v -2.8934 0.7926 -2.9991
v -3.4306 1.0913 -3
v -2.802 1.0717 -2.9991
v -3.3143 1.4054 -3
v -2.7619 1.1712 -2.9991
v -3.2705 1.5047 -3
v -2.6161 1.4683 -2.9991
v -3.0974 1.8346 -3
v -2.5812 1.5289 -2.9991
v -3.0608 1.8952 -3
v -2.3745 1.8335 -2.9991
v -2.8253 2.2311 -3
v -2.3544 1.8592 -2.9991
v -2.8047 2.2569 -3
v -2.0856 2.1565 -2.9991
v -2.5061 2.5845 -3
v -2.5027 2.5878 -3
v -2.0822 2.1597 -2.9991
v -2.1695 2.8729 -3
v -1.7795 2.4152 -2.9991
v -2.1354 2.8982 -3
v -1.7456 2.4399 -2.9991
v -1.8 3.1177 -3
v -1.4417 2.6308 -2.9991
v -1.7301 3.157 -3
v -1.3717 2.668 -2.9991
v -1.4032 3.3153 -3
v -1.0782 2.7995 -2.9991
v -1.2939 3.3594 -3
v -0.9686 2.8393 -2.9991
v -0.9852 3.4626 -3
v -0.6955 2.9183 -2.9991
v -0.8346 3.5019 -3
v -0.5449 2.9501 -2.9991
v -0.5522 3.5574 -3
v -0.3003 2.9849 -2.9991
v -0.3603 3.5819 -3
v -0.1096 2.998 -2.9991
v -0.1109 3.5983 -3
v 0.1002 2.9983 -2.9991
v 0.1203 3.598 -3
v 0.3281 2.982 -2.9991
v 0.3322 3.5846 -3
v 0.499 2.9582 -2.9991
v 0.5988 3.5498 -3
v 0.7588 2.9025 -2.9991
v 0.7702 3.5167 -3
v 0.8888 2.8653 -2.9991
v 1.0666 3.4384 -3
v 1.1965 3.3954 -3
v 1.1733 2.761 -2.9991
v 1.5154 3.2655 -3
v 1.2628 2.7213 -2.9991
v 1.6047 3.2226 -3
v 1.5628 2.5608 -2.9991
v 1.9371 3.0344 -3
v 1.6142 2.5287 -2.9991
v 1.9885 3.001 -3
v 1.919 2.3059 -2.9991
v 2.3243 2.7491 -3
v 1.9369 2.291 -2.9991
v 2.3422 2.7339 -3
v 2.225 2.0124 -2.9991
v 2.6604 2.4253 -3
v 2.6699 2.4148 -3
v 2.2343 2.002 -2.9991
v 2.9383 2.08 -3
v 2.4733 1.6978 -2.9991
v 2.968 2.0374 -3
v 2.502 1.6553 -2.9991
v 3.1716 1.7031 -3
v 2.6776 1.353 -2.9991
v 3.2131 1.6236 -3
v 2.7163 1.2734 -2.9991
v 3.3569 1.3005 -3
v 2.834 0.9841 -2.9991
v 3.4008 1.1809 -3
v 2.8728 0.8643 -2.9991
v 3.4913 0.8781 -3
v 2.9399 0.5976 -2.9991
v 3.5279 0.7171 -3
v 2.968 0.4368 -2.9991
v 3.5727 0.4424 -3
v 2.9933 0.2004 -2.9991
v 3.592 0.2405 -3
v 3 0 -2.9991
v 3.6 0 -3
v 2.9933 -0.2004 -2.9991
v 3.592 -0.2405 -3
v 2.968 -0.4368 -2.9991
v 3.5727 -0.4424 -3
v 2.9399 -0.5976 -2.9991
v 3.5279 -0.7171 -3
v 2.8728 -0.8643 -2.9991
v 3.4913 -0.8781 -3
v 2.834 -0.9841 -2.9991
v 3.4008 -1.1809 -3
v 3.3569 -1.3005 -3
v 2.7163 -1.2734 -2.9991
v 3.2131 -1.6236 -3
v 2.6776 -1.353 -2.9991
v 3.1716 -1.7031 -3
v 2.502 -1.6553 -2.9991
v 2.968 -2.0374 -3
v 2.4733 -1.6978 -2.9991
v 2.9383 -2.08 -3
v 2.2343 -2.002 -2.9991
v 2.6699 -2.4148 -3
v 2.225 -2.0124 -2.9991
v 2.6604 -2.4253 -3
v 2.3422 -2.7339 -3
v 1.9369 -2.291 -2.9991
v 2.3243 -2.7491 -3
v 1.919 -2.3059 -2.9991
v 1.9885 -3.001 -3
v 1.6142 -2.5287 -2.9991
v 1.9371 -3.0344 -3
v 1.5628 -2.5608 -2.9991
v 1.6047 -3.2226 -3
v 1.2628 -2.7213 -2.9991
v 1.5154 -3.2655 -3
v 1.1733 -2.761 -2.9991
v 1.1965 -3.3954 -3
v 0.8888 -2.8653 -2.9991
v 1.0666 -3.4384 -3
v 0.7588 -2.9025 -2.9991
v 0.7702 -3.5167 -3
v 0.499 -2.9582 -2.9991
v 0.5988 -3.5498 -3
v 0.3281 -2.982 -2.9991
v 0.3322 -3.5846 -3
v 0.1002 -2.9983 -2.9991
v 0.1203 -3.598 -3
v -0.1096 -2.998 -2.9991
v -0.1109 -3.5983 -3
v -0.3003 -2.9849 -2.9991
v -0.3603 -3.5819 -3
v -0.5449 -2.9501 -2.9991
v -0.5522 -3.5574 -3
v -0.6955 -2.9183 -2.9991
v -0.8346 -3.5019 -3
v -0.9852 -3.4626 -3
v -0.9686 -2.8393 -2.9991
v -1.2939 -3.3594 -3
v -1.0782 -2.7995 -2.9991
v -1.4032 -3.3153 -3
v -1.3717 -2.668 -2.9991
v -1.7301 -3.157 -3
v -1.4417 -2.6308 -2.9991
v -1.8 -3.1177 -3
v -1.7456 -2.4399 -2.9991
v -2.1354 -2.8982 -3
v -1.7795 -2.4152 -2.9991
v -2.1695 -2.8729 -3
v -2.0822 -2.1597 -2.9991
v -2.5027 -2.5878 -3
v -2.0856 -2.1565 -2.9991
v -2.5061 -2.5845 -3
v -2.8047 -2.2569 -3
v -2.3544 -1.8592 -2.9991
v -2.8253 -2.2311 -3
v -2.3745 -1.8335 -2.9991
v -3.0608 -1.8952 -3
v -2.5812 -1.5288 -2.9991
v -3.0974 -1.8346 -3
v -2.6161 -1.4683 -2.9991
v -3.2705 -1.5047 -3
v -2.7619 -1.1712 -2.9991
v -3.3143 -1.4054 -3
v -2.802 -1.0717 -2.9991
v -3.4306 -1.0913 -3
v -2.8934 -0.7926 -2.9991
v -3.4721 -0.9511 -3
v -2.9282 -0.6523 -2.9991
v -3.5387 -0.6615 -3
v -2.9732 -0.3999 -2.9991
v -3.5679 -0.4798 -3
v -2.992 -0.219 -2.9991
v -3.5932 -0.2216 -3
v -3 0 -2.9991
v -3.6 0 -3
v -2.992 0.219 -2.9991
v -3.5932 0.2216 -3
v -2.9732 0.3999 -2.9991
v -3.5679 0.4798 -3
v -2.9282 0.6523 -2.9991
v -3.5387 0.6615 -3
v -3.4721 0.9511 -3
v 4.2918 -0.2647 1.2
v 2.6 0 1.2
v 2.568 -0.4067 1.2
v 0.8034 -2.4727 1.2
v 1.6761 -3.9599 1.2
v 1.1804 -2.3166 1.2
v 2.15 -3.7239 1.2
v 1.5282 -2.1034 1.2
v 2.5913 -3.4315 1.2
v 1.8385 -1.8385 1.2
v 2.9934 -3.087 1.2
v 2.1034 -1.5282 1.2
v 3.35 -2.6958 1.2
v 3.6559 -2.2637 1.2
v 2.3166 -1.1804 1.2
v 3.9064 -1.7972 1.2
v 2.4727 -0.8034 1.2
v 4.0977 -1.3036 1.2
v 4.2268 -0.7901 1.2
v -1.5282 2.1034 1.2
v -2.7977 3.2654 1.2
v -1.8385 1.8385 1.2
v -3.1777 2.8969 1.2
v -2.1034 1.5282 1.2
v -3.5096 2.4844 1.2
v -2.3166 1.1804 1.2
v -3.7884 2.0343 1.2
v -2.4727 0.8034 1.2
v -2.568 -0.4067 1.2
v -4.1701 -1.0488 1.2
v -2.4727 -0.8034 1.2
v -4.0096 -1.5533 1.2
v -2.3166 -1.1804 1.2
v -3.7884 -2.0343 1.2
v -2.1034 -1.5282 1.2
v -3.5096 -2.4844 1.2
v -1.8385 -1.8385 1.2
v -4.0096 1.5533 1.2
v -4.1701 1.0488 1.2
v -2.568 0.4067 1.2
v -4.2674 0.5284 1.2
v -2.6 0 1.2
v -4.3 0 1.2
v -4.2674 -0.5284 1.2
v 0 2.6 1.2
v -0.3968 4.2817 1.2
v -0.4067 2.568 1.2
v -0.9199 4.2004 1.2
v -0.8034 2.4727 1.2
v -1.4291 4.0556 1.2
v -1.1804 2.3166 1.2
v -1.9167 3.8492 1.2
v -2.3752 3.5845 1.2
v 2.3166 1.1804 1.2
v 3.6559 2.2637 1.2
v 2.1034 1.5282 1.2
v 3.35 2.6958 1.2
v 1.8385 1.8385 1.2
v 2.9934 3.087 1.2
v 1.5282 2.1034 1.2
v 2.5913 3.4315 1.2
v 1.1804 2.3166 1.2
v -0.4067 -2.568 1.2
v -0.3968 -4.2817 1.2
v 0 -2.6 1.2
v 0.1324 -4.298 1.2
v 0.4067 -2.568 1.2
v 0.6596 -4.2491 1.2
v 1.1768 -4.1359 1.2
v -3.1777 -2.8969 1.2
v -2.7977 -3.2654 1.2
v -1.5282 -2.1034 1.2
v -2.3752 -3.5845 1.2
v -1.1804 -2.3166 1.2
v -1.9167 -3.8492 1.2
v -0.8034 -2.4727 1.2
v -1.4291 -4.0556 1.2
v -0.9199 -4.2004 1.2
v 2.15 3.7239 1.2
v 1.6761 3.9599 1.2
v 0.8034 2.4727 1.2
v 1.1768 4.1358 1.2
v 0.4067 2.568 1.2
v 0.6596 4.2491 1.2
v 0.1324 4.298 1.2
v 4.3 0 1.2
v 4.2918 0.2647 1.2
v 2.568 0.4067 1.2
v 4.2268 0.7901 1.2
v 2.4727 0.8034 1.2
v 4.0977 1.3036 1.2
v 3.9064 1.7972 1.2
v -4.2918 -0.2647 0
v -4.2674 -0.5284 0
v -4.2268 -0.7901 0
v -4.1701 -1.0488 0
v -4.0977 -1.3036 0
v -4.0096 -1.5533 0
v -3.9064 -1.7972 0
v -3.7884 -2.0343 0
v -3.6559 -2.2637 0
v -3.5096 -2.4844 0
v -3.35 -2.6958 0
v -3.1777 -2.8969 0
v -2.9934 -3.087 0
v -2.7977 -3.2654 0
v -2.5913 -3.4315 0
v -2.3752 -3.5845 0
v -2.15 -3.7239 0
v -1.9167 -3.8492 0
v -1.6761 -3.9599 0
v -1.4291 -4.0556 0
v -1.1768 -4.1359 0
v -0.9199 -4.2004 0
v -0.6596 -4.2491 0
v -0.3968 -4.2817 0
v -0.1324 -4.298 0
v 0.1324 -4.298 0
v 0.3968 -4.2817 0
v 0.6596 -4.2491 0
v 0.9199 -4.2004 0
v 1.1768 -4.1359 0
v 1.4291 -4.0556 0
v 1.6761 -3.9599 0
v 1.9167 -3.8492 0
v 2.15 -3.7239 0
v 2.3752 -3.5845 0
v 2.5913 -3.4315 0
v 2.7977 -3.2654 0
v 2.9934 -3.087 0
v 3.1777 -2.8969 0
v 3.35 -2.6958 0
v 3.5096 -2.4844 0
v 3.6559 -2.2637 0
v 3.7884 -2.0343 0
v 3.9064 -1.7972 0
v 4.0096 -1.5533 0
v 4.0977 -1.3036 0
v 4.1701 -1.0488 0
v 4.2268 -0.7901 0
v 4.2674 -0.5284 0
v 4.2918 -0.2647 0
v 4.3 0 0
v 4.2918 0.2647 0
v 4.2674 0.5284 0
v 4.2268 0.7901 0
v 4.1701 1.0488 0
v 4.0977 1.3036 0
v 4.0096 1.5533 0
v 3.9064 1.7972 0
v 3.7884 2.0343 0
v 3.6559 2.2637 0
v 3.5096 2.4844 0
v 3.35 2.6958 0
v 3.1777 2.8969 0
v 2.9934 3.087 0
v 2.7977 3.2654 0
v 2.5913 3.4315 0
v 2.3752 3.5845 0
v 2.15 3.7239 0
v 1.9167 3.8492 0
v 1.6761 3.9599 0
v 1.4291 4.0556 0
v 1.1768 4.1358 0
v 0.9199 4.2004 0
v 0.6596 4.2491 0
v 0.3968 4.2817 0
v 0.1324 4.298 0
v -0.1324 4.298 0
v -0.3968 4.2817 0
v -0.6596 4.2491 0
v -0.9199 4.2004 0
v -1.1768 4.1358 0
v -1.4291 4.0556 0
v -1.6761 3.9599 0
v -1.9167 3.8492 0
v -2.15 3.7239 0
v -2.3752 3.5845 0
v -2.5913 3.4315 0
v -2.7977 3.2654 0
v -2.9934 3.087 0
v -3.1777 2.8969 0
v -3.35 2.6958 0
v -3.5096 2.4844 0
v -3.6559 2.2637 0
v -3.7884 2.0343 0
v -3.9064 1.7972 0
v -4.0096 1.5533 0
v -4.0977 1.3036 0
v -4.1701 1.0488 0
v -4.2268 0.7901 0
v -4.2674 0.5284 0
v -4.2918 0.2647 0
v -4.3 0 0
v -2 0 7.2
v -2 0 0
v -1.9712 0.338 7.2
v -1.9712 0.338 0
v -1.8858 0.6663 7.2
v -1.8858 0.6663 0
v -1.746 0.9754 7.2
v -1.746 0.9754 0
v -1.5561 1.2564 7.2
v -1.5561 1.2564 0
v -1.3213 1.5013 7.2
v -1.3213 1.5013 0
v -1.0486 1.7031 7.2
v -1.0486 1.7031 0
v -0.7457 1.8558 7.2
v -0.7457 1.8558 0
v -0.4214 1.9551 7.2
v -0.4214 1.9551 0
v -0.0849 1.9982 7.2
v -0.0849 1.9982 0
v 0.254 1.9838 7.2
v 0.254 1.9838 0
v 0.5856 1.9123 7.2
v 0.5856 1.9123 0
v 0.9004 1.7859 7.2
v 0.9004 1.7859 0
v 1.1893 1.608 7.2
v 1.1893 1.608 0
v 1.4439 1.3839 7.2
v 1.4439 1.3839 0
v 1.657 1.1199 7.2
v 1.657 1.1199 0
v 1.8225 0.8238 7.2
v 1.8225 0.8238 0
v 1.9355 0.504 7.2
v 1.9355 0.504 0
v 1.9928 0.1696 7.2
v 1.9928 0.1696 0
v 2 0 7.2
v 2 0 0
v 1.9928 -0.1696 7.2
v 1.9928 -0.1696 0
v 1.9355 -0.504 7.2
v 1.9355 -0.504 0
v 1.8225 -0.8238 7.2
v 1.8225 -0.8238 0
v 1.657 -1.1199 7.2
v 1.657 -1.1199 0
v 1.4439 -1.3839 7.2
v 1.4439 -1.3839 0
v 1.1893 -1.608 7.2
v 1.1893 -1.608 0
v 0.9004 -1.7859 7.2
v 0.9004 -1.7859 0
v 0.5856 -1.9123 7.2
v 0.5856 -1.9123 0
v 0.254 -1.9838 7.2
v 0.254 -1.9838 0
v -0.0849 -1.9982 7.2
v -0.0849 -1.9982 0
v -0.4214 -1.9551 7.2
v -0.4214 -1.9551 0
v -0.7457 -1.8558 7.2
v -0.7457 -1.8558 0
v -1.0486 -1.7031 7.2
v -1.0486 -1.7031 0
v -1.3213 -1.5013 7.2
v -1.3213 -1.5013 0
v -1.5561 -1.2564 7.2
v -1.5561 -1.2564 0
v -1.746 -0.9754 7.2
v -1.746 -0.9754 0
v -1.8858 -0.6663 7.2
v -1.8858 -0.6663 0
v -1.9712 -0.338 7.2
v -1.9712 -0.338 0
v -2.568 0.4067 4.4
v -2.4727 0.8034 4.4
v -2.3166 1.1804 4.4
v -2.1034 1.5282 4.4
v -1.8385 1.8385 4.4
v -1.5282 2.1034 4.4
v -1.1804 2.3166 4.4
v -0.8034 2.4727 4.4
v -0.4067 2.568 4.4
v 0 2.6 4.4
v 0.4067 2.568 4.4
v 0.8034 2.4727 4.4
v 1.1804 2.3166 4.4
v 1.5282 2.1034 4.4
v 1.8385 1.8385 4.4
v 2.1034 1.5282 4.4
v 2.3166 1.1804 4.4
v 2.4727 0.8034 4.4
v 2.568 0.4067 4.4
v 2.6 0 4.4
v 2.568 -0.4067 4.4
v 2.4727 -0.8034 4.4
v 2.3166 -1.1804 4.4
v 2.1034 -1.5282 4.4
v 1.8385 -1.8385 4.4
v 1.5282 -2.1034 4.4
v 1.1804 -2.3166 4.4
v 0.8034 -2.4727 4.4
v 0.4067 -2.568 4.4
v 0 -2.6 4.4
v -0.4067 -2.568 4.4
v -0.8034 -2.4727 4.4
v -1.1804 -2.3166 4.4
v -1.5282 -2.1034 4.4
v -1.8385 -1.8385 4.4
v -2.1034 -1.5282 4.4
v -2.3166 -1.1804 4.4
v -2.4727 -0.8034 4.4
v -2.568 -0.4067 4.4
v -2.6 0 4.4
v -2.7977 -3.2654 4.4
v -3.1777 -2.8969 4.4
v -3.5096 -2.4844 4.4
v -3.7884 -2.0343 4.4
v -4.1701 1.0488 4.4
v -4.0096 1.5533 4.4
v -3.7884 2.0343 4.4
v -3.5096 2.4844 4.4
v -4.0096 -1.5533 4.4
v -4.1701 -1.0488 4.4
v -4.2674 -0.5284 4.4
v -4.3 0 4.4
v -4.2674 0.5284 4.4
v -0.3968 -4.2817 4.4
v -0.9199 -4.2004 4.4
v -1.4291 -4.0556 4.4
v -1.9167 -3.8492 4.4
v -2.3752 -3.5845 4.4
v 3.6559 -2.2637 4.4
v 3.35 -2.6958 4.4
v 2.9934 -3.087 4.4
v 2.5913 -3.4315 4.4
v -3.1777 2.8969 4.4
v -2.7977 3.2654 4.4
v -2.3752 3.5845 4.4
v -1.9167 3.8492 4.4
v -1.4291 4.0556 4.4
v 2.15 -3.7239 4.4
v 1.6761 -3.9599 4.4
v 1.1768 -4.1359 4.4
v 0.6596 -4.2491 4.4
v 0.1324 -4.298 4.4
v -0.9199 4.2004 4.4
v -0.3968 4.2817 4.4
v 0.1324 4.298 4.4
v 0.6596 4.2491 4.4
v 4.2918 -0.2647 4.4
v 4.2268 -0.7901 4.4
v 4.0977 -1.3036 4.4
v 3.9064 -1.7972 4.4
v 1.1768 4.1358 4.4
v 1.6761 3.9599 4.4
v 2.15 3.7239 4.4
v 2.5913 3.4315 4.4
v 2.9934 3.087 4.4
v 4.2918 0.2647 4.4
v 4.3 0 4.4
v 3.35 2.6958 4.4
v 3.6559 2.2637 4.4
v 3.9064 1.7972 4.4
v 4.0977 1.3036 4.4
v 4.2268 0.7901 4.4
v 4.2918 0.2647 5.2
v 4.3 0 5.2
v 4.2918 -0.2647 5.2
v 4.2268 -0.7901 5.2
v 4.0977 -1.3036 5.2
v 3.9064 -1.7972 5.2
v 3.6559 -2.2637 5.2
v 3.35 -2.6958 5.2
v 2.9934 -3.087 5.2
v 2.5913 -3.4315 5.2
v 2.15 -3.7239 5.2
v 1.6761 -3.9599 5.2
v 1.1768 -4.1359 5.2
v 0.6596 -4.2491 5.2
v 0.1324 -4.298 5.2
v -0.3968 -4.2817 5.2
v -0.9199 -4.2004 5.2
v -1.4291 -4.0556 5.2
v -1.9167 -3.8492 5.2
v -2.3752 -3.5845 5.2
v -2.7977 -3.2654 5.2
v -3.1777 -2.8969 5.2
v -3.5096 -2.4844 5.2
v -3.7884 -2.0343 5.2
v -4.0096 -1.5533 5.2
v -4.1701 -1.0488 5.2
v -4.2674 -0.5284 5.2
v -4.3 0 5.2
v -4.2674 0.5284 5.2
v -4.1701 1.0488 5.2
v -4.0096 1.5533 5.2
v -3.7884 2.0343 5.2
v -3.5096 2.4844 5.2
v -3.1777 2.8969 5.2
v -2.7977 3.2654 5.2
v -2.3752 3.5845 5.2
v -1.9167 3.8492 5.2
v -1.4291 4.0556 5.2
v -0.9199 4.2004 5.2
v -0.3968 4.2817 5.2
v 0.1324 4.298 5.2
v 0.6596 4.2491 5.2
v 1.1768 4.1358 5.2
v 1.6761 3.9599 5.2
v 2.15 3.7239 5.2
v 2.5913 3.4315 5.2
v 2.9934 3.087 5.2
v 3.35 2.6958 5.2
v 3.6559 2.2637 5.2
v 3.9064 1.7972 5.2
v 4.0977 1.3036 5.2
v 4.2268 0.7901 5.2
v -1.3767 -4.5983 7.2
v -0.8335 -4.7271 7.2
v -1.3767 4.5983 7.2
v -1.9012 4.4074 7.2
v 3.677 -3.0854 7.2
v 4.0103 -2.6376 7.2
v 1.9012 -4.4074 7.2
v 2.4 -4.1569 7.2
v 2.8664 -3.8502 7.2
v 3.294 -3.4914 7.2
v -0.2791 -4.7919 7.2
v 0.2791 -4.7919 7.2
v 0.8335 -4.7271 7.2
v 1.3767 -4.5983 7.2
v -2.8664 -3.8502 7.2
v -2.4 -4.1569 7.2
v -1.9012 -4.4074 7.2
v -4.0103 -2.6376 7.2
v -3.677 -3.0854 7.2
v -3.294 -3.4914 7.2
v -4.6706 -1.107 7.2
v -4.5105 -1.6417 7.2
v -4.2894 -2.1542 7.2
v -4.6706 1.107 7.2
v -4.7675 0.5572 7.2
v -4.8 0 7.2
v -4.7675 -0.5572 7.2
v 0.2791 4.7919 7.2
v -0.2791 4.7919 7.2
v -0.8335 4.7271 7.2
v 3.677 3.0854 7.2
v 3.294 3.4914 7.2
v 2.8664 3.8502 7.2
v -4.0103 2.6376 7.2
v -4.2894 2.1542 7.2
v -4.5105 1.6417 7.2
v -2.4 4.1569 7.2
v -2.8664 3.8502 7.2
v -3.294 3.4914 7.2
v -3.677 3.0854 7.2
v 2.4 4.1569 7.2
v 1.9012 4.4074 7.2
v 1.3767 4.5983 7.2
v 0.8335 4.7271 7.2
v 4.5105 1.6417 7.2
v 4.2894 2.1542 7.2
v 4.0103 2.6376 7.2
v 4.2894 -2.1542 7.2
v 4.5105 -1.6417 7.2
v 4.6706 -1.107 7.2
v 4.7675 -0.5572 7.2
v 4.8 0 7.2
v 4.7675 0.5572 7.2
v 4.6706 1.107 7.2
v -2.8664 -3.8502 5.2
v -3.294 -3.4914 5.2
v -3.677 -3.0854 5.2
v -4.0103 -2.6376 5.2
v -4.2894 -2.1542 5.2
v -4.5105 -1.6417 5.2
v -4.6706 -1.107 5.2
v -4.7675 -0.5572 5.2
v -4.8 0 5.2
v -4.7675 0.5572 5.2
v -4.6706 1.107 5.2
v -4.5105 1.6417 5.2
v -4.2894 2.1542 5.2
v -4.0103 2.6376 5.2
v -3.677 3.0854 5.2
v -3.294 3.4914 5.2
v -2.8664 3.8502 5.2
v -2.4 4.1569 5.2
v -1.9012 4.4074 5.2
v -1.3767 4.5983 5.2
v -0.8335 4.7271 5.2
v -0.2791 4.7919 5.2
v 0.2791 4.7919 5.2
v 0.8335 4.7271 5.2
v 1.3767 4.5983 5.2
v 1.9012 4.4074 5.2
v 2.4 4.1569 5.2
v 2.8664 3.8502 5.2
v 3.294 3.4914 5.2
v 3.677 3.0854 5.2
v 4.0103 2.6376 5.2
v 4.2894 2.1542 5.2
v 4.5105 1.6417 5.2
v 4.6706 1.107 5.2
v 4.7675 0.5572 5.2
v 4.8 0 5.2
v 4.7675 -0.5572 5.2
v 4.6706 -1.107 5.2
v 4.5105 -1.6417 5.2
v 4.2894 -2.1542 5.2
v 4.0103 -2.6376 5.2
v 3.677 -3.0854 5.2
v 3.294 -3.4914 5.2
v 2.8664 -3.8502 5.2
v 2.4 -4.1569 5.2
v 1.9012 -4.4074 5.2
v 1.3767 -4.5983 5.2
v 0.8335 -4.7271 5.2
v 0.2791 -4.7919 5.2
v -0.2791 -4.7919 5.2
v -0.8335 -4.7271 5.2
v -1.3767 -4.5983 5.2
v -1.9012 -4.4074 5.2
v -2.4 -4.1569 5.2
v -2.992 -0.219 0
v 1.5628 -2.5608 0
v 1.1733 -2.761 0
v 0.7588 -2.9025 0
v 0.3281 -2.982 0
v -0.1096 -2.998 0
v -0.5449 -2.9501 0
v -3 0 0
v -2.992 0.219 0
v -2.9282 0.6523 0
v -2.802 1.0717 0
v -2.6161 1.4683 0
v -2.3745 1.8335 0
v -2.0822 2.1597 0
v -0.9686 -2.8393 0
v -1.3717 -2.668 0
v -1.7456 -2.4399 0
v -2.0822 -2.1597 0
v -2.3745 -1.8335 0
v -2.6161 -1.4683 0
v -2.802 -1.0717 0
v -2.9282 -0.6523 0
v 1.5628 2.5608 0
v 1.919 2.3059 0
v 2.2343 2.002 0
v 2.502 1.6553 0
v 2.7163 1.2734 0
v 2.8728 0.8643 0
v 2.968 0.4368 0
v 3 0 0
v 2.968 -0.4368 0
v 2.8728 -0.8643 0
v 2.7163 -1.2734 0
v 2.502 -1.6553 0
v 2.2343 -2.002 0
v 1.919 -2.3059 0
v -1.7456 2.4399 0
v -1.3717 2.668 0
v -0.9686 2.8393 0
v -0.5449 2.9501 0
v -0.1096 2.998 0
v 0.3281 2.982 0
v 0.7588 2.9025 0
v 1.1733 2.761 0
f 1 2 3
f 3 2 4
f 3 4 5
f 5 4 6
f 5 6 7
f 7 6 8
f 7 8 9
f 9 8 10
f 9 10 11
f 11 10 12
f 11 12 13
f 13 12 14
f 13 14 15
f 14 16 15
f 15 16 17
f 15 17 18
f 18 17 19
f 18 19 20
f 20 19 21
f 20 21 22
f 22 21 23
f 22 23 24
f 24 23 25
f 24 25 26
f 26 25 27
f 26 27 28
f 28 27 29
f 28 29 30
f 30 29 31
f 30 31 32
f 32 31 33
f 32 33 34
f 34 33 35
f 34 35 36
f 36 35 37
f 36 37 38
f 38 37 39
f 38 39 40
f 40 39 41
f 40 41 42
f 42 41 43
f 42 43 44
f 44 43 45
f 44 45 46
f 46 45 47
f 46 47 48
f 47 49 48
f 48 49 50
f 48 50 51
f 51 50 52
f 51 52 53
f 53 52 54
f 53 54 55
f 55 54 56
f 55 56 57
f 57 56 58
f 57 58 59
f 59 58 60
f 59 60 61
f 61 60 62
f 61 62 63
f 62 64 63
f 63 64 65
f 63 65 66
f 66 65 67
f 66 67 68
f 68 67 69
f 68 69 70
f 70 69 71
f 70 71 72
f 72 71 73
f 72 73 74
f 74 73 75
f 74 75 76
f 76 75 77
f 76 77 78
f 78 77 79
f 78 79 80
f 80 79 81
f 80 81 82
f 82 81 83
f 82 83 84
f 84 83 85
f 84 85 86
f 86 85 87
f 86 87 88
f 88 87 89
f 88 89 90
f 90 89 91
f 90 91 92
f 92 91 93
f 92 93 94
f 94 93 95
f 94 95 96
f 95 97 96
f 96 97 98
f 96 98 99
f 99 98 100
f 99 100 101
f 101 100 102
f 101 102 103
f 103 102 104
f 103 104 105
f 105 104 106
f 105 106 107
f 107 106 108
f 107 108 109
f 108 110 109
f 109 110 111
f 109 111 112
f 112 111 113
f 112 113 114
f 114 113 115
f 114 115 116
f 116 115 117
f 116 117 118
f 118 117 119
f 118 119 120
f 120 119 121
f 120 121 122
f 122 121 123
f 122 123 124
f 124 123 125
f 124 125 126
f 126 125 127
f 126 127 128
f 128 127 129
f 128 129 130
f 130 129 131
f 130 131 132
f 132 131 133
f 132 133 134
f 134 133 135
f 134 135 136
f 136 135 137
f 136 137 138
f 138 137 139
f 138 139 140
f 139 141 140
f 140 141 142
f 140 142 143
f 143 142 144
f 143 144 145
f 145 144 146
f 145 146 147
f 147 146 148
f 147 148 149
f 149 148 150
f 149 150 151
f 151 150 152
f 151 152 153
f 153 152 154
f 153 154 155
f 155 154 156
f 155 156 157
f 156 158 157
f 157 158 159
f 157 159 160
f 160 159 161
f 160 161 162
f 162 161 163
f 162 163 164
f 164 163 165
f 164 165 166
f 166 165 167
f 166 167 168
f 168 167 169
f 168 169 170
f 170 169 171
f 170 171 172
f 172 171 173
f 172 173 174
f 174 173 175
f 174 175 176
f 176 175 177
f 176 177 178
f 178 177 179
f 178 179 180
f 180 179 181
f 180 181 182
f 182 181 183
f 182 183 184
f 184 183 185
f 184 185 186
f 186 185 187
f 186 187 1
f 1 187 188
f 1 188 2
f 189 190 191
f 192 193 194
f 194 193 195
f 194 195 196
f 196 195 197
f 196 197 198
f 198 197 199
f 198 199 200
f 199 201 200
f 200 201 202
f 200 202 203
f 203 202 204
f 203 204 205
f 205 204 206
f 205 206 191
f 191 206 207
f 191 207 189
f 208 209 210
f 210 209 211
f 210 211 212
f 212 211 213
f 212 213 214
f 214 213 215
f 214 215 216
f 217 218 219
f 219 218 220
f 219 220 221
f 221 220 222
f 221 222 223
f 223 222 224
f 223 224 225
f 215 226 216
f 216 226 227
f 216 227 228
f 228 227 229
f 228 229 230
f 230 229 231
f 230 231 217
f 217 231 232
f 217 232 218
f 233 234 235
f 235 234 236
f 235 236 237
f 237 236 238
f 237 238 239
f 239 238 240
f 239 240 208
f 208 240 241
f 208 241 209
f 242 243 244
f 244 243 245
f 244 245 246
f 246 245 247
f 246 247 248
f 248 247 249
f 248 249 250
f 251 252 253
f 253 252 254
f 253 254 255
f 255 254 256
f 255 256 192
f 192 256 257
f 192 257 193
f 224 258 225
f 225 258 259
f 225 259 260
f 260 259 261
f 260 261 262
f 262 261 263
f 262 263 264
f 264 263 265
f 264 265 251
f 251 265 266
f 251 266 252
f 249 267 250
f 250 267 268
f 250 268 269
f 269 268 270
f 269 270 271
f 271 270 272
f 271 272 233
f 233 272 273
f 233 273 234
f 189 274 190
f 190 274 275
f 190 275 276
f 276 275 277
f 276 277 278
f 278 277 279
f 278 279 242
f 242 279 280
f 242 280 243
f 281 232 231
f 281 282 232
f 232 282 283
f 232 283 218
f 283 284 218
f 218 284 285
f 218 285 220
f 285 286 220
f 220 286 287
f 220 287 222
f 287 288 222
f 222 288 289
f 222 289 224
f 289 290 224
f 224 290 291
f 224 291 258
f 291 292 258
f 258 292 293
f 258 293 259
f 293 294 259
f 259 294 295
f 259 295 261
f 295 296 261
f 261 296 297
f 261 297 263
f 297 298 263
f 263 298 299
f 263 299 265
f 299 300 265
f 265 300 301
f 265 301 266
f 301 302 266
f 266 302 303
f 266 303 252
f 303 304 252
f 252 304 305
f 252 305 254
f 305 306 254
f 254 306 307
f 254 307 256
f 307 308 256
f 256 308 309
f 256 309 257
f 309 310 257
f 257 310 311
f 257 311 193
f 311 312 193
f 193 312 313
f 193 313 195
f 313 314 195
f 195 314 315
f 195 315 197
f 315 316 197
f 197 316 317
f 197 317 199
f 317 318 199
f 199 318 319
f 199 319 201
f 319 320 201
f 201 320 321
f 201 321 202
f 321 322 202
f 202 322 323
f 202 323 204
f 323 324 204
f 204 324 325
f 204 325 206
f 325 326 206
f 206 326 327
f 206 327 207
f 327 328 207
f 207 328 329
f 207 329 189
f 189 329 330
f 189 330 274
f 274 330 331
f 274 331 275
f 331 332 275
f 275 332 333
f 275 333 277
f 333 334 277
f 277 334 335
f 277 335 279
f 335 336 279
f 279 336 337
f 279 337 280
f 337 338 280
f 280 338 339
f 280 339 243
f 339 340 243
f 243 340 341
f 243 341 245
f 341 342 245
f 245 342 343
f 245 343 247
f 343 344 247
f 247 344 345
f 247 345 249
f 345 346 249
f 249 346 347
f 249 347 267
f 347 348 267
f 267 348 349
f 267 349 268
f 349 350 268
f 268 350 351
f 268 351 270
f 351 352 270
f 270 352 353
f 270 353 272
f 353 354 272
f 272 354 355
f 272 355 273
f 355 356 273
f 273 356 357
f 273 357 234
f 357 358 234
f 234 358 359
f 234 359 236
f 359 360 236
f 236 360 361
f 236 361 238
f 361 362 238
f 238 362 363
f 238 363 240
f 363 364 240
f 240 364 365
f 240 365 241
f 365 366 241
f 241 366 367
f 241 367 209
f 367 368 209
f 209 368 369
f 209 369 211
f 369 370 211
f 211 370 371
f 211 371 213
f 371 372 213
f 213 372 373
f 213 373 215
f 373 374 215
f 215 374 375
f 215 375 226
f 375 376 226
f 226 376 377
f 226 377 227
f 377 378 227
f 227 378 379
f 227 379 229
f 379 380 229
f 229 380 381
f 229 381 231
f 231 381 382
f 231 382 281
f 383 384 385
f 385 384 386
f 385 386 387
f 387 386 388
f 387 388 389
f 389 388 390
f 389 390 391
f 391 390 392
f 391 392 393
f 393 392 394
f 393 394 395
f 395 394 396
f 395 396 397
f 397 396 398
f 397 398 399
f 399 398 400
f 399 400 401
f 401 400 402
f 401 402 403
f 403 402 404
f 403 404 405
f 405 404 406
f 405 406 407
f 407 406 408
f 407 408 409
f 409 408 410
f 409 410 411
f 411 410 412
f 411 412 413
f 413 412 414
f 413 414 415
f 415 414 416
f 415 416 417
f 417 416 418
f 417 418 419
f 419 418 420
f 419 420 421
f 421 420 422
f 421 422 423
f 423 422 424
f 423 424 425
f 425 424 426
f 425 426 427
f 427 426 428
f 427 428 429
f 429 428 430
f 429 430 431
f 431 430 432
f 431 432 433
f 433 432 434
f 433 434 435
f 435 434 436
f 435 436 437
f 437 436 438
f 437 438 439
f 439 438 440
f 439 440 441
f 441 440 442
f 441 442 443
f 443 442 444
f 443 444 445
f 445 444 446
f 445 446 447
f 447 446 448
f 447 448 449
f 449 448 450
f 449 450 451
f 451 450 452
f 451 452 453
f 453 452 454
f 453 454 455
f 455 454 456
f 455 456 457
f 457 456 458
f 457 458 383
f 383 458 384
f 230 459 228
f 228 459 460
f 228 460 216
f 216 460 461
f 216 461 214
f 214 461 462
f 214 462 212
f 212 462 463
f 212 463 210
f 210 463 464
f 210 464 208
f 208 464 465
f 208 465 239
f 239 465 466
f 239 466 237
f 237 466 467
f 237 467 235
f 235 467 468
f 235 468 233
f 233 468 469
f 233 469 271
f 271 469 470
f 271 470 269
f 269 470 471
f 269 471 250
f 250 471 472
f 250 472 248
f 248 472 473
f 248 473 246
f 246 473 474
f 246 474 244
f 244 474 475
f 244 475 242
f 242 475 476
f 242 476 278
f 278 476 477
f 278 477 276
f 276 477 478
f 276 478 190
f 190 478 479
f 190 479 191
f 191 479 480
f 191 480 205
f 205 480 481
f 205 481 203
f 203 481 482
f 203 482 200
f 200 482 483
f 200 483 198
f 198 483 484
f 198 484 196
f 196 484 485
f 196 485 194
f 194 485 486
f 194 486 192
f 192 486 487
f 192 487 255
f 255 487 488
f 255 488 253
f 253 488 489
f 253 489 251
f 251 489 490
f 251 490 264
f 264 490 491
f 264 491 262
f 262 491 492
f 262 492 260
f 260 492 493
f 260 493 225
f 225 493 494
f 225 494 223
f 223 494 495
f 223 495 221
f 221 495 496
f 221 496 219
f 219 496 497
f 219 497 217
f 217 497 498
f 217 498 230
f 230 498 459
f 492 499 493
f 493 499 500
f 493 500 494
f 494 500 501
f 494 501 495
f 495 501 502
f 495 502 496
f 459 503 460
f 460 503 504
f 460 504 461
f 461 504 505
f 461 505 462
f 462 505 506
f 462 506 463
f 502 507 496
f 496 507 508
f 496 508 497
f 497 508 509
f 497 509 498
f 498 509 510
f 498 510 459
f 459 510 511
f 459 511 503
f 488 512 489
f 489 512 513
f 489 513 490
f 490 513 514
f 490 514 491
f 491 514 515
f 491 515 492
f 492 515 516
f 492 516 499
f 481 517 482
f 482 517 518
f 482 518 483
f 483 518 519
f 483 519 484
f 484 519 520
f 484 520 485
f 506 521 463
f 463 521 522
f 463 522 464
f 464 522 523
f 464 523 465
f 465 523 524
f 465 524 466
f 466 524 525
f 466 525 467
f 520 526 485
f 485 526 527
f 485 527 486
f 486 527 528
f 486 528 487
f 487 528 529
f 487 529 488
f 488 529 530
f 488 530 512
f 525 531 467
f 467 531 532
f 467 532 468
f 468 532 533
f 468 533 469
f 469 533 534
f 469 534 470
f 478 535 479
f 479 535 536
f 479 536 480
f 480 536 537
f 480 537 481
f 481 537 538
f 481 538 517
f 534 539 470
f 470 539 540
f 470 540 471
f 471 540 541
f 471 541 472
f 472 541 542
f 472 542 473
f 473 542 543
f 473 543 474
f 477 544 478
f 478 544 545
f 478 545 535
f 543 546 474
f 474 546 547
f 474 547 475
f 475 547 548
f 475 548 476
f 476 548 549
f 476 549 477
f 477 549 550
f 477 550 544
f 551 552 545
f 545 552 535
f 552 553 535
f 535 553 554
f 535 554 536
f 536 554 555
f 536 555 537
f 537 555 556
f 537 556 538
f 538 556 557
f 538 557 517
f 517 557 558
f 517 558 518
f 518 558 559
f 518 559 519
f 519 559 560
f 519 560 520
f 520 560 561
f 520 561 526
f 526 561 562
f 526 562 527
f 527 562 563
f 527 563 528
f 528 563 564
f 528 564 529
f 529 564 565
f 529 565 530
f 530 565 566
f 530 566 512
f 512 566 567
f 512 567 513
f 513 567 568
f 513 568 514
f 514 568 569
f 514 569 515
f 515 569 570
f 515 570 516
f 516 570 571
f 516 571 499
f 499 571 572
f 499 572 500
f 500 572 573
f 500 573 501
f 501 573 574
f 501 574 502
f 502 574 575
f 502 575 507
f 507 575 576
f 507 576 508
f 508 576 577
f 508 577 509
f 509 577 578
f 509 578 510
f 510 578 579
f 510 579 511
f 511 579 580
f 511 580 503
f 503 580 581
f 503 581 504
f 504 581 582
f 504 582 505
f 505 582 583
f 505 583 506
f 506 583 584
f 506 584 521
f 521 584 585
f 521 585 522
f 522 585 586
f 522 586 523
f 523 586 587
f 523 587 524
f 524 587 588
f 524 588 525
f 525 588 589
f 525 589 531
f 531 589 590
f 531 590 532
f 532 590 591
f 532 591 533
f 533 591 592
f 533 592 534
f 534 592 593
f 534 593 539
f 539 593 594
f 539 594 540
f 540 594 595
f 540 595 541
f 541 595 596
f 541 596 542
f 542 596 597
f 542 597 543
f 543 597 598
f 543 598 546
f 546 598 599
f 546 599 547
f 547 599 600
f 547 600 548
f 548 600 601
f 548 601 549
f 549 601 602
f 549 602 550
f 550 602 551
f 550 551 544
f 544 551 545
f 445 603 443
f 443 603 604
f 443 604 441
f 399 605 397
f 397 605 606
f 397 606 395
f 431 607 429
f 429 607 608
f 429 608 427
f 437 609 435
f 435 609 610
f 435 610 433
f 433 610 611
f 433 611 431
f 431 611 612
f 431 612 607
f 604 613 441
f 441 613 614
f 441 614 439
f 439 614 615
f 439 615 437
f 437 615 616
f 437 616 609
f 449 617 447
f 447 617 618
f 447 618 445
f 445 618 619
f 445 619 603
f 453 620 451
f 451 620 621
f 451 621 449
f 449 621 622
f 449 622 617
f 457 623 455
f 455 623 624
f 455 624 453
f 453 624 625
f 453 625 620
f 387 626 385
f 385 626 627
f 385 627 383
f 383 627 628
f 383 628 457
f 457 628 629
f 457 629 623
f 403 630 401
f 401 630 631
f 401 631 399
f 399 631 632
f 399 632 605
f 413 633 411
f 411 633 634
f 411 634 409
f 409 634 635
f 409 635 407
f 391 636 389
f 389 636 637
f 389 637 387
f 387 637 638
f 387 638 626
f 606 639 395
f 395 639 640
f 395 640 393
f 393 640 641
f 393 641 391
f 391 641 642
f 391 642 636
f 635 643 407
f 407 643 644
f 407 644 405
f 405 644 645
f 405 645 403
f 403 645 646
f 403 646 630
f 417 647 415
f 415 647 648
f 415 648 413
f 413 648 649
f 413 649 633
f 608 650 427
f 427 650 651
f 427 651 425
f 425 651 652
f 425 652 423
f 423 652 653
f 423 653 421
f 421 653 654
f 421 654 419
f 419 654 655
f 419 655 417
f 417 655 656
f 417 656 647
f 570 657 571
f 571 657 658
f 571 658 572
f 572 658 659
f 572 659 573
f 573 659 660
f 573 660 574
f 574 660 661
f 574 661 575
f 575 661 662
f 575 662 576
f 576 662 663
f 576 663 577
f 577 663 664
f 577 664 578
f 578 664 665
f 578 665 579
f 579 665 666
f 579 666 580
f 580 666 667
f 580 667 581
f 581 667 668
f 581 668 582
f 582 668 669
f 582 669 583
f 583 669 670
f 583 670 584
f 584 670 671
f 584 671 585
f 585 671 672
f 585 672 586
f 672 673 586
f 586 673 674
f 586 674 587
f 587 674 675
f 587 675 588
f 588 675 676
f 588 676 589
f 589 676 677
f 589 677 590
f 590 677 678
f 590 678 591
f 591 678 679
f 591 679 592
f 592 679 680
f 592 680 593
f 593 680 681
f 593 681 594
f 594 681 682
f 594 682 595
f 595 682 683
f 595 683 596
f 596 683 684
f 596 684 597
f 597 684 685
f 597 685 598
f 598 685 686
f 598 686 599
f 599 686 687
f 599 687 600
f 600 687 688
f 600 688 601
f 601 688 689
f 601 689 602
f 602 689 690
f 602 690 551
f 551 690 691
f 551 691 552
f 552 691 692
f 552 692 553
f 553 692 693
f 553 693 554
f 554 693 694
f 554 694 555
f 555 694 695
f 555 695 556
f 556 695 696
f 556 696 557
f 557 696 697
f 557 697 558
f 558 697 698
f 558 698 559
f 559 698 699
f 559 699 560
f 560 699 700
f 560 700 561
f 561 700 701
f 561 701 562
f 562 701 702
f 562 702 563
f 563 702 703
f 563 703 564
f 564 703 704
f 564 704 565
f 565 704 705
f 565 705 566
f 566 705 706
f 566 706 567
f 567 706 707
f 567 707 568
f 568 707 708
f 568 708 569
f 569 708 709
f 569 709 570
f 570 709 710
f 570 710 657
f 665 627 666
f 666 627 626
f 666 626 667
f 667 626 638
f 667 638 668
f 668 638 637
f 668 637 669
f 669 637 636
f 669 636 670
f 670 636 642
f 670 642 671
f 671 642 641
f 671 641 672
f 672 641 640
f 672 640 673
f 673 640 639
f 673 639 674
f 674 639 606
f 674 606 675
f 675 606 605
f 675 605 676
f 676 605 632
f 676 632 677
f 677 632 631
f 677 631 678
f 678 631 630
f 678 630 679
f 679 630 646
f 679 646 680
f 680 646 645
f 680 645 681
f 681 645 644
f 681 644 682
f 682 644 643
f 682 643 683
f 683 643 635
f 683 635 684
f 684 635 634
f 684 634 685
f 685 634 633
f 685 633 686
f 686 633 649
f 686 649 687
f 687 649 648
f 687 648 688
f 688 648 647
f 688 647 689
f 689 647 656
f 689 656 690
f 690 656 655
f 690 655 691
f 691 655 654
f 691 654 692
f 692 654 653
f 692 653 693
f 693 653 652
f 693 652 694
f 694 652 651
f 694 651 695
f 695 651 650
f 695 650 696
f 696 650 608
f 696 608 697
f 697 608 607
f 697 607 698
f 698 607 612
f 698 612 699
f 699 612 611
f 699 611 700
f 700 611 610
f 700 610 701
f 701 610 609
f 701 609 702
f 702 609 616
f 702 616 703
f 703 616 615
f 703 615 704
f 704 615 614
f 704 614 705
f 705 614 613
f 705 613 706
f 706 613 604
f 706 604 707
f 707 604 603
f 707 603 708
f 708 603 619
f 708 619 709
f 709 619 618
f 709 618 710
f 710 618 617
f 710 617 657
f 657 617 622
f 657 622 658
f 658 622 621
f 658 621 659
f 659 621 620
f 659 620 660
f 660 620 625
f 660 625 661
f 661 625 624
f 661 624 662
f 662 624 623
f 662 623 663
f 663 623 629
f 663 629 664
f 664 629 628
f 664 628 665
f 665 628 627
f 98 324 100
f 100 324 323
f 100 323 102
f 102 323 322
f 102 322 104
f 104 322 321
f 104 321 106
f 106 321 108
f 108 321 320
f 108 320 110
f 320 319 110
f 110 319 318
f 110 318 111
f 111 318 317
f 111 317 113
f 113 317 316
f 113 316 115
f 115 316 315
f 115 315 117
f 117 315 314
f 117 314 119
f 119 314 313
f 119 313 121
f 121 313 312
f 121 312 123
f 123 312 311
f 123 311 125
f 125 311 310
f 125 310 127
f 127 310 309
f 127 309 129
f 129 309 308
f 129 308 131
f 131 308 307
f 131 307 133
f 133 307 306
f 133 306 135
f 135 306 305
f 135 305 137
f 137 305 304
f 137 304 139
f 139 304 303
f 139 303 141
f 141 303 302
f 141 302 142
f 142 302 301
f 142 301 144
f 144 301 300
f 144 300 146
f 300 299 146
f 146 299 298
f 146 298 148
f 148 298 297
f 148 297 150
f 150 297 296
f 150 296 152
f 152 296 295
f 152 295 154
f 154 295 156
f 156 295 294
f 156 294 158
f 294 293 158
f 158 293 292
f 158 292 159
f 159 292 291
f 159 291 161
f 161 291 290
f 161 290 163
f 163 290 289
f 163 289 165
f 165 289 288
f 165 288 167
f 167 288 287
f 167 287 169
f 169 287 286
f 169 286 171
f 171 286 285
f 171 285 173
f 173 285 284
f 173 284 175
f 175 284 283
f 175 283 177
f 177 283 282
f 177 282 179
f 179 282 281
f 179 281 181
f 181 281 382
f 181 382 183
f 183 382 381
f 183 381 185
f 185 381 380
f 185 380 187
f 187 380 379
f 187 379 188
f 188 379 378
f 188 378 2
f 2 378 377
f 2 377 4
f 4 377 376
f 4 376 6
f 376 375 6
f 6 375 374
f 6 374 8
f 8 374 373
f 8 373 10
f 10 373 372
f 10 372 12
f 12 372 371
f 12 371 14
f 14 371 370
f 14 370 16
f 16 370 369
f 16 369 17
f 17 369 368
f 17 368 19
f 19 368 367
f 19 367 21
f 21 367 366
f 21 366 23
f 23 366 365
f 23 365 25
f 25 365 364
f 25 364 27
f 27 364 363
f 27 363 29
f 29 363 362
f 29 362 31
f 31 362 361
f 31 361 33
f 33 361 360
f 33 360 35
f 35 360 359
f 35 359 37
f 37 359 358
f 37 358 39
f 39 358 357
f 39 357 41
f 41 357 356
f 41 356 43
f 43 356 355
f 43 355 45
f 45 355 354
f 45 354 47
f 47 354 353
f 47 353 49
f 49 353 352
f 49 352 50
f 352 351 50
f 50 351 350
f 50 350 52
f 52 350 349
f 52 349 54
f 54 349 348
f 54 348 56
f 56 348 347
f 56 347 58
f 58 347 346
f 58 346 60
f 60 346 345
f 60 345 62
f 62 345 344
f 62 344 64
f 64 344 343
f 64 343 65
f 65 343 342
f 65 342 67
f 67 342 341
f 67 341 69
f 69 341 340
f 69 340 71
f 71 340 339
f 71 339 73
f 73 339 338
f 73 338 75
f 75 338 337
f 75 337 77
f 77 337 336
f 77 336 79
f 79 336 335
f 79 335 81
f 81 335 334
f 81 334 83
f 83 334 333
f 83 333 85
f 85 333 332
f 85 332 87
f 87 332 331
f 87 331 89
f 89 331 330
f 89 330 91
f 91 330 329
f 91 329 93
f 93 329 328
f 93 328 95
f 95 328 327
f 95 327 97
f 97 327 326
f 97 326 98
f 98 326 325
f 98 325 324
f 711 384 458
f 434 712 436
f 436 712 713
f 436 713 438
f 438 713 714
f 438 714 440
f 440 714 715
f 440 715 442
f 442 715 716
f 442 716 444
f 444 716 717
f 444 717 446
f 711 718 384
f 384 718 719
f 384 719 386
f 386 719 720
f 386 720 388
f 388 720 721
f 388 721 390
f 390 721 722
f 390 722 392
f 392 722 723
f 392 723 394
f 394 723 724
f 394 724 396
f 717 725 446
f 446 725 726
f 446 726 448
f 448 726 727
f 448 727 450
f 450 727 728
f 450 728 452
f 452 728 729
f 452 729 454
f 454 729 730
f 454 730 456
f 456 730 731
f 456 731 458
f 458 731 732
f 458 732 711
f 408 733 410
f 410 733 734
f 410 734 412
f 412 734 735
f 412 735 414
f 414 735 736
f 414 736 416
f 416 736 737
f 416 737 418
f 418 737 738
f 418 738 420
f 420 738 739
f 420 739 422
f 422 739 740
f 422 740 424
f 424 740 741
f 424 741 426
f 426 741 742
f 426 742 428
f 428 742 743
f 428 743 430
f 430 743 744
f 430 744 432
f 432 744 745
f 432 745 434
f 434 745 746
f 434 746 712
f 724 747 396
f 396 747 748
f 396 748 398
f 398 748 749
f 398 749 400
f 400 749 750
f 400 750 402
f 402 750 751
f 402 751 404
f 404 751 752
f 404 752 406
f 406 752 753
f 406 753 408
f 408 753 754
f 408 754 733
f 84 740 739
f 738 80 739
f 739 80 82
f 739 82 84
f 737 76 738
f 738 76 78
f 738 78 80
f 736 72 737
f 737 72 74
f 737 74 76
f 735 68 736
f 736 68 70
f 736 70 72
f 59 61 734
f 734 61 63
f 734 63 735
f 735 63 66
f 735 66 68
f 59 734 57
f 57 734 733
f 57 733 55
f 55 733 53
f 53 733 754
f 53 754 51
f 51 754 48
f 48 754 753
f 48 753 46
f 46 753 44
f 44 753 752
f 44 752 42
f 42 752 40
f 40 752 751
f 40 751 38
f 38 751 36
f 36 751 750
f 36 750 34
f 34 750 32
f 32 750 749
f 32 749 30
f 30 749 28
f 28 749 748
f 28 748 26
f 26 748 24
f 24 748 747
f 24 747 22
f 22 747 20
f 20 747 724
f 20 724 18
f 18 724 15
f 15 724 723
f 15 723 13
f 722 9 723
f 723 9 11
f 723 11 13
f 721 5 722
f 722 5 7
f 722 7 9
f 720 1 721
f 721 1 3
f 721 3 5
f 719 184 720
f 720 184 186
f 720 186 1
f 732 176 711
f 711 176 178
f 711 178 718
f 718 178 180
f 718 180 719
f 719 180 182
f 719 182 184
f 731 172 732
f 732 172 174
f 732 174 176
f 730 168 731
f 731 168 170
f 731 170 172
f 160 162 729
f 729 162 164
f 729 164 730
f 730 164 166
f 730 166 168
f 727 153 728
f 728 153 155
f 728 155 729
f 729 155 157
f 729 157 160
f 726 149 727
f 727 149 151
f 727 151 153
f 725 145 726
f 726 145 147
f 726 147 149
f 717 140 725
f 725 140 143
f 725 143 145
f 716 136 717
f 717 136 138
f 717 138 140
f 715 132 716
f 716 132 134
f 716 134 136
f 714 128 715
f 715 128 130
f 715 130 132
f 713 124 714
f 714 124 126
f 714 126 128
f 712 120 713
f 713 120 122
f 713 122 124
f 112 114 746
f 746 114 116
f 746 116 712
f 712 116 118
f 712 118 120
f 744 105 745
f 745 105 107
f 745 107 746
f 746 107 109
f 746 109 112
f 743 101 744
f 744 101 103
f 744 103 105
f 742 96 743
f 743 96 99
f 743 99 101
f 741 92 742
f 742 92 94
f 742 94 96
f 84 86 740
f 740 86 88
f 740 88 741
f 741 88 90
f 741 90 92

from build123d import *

# Parameters (mm, degrees)
ESQUISSE1_R             = 4.3
ESQUISSE1_R_2           = 2.6
ESQUISSE1_R_3           = 2
BOSS_EXTRU_1_DEPTH      = 1.2
ESQUISSE2_R             = 2.6
ESQUISSE2_R_2           = 2
BOSS_EXTRU_3_DEPTH      = 3.2
ESQUISSE3_R             = 4.3
ESQUISSE3_R_2           = 2
BOSS_EXTRU_4_DEPTH      = 0.8
ESQUISSE4_R             = 4.8
ESQUISSE4_R_2           = 2
BOSS_EXTRU_5_DEPTH      = 2
ESQUISSE6_R             = 3
ENL_V_MAT_EXTRU_1_DEPTH = 3


with BuildPart() as part:
    # Esquisse1 → Boss.-Extru.1 (new body)
    # profile 1 of 2: a face of its own
    with BuildSketch(Plane.XY):
        Circle(ESQUISSE1_R)
        Circle(ESQUISSE1_R_2, mode=Mode.SUBTRACT)
    # profile 2 of 2: a face of its own
    with BuildSketch(Plane.XY):
        Circle(ESQUISSE1_R_2)
        Circle(ESQUISSE1_R_3, mode=Mode.SUBTRACT)
    extrude(amount=BOSS_EXTRU_1_DEPTH)

    # Esquisse2 → Boss.-Extru.3 (add)
    with BuildSketch(Plane.XY.offset(1.2)):
        Circle(ESQUISSE2_R)
        Circle(ESQUISSE2_R_2, mode=Mode.SUBTRACT)
    extrude(amount=BOSS_EXTRU_3_DEPTH)

    # Esquisse3 → Boss.-Extru.4 (add)
    with BuildSketch(Plane.XY.offset(4.4)):
        Circle(ESQUISSE3_R)
        Circle(ESQUISSE3_R_2, mode=Mode.SUBTRACT)
    extrude(amount=BOSS_EXTRU_4_DEPTH)

    # Esquisse4 → Boss.-Extru.5 (add)
    with BuildSketch(Plane.XY.offset(5.2)):
        Circle(ESQUISSE4_R)
        Circle(ESQUISSE4_R_2, mode=Mode.SUBTRACT)
    extrude(amount=BOSS_EXTRU_5_DEPTH)

    # Esquisse5 → Révolution2 (revolve)
    with BuildSketch(Plane(origin=(0, 0, 0), x_dir=(1, 0, 0), z_dir=(0, 1, 0)), mode=Mode.PRIVATE) as r_volution2_sk:
        Polygon((-4.3, 0), (-3.599996072, 3), (0, 2.994682018), (0, 0), align=None)
    revolve(r_volution2_sk.sketch.rotate(Axis((0, 0, 7.316321581), (0, 0, -1)), 180), axis=Axis((0, 0, 7.316321581), (0, 0, -1)))

    # Esquisse6 → Enlèv. mat.-Extru.1 (cut)
    with BuildSketch(Plane(origin=(0, 0, 0), x_dir=(-1, 0, 0), z_dir=(0, 0, -1))):
        Circle(ESQUISSE6_R)
    extrude(amount=ENL_V_MAT_EXTRU_1_DEPTH, mode=Mode.SUBTRACT)


solid = part.part
